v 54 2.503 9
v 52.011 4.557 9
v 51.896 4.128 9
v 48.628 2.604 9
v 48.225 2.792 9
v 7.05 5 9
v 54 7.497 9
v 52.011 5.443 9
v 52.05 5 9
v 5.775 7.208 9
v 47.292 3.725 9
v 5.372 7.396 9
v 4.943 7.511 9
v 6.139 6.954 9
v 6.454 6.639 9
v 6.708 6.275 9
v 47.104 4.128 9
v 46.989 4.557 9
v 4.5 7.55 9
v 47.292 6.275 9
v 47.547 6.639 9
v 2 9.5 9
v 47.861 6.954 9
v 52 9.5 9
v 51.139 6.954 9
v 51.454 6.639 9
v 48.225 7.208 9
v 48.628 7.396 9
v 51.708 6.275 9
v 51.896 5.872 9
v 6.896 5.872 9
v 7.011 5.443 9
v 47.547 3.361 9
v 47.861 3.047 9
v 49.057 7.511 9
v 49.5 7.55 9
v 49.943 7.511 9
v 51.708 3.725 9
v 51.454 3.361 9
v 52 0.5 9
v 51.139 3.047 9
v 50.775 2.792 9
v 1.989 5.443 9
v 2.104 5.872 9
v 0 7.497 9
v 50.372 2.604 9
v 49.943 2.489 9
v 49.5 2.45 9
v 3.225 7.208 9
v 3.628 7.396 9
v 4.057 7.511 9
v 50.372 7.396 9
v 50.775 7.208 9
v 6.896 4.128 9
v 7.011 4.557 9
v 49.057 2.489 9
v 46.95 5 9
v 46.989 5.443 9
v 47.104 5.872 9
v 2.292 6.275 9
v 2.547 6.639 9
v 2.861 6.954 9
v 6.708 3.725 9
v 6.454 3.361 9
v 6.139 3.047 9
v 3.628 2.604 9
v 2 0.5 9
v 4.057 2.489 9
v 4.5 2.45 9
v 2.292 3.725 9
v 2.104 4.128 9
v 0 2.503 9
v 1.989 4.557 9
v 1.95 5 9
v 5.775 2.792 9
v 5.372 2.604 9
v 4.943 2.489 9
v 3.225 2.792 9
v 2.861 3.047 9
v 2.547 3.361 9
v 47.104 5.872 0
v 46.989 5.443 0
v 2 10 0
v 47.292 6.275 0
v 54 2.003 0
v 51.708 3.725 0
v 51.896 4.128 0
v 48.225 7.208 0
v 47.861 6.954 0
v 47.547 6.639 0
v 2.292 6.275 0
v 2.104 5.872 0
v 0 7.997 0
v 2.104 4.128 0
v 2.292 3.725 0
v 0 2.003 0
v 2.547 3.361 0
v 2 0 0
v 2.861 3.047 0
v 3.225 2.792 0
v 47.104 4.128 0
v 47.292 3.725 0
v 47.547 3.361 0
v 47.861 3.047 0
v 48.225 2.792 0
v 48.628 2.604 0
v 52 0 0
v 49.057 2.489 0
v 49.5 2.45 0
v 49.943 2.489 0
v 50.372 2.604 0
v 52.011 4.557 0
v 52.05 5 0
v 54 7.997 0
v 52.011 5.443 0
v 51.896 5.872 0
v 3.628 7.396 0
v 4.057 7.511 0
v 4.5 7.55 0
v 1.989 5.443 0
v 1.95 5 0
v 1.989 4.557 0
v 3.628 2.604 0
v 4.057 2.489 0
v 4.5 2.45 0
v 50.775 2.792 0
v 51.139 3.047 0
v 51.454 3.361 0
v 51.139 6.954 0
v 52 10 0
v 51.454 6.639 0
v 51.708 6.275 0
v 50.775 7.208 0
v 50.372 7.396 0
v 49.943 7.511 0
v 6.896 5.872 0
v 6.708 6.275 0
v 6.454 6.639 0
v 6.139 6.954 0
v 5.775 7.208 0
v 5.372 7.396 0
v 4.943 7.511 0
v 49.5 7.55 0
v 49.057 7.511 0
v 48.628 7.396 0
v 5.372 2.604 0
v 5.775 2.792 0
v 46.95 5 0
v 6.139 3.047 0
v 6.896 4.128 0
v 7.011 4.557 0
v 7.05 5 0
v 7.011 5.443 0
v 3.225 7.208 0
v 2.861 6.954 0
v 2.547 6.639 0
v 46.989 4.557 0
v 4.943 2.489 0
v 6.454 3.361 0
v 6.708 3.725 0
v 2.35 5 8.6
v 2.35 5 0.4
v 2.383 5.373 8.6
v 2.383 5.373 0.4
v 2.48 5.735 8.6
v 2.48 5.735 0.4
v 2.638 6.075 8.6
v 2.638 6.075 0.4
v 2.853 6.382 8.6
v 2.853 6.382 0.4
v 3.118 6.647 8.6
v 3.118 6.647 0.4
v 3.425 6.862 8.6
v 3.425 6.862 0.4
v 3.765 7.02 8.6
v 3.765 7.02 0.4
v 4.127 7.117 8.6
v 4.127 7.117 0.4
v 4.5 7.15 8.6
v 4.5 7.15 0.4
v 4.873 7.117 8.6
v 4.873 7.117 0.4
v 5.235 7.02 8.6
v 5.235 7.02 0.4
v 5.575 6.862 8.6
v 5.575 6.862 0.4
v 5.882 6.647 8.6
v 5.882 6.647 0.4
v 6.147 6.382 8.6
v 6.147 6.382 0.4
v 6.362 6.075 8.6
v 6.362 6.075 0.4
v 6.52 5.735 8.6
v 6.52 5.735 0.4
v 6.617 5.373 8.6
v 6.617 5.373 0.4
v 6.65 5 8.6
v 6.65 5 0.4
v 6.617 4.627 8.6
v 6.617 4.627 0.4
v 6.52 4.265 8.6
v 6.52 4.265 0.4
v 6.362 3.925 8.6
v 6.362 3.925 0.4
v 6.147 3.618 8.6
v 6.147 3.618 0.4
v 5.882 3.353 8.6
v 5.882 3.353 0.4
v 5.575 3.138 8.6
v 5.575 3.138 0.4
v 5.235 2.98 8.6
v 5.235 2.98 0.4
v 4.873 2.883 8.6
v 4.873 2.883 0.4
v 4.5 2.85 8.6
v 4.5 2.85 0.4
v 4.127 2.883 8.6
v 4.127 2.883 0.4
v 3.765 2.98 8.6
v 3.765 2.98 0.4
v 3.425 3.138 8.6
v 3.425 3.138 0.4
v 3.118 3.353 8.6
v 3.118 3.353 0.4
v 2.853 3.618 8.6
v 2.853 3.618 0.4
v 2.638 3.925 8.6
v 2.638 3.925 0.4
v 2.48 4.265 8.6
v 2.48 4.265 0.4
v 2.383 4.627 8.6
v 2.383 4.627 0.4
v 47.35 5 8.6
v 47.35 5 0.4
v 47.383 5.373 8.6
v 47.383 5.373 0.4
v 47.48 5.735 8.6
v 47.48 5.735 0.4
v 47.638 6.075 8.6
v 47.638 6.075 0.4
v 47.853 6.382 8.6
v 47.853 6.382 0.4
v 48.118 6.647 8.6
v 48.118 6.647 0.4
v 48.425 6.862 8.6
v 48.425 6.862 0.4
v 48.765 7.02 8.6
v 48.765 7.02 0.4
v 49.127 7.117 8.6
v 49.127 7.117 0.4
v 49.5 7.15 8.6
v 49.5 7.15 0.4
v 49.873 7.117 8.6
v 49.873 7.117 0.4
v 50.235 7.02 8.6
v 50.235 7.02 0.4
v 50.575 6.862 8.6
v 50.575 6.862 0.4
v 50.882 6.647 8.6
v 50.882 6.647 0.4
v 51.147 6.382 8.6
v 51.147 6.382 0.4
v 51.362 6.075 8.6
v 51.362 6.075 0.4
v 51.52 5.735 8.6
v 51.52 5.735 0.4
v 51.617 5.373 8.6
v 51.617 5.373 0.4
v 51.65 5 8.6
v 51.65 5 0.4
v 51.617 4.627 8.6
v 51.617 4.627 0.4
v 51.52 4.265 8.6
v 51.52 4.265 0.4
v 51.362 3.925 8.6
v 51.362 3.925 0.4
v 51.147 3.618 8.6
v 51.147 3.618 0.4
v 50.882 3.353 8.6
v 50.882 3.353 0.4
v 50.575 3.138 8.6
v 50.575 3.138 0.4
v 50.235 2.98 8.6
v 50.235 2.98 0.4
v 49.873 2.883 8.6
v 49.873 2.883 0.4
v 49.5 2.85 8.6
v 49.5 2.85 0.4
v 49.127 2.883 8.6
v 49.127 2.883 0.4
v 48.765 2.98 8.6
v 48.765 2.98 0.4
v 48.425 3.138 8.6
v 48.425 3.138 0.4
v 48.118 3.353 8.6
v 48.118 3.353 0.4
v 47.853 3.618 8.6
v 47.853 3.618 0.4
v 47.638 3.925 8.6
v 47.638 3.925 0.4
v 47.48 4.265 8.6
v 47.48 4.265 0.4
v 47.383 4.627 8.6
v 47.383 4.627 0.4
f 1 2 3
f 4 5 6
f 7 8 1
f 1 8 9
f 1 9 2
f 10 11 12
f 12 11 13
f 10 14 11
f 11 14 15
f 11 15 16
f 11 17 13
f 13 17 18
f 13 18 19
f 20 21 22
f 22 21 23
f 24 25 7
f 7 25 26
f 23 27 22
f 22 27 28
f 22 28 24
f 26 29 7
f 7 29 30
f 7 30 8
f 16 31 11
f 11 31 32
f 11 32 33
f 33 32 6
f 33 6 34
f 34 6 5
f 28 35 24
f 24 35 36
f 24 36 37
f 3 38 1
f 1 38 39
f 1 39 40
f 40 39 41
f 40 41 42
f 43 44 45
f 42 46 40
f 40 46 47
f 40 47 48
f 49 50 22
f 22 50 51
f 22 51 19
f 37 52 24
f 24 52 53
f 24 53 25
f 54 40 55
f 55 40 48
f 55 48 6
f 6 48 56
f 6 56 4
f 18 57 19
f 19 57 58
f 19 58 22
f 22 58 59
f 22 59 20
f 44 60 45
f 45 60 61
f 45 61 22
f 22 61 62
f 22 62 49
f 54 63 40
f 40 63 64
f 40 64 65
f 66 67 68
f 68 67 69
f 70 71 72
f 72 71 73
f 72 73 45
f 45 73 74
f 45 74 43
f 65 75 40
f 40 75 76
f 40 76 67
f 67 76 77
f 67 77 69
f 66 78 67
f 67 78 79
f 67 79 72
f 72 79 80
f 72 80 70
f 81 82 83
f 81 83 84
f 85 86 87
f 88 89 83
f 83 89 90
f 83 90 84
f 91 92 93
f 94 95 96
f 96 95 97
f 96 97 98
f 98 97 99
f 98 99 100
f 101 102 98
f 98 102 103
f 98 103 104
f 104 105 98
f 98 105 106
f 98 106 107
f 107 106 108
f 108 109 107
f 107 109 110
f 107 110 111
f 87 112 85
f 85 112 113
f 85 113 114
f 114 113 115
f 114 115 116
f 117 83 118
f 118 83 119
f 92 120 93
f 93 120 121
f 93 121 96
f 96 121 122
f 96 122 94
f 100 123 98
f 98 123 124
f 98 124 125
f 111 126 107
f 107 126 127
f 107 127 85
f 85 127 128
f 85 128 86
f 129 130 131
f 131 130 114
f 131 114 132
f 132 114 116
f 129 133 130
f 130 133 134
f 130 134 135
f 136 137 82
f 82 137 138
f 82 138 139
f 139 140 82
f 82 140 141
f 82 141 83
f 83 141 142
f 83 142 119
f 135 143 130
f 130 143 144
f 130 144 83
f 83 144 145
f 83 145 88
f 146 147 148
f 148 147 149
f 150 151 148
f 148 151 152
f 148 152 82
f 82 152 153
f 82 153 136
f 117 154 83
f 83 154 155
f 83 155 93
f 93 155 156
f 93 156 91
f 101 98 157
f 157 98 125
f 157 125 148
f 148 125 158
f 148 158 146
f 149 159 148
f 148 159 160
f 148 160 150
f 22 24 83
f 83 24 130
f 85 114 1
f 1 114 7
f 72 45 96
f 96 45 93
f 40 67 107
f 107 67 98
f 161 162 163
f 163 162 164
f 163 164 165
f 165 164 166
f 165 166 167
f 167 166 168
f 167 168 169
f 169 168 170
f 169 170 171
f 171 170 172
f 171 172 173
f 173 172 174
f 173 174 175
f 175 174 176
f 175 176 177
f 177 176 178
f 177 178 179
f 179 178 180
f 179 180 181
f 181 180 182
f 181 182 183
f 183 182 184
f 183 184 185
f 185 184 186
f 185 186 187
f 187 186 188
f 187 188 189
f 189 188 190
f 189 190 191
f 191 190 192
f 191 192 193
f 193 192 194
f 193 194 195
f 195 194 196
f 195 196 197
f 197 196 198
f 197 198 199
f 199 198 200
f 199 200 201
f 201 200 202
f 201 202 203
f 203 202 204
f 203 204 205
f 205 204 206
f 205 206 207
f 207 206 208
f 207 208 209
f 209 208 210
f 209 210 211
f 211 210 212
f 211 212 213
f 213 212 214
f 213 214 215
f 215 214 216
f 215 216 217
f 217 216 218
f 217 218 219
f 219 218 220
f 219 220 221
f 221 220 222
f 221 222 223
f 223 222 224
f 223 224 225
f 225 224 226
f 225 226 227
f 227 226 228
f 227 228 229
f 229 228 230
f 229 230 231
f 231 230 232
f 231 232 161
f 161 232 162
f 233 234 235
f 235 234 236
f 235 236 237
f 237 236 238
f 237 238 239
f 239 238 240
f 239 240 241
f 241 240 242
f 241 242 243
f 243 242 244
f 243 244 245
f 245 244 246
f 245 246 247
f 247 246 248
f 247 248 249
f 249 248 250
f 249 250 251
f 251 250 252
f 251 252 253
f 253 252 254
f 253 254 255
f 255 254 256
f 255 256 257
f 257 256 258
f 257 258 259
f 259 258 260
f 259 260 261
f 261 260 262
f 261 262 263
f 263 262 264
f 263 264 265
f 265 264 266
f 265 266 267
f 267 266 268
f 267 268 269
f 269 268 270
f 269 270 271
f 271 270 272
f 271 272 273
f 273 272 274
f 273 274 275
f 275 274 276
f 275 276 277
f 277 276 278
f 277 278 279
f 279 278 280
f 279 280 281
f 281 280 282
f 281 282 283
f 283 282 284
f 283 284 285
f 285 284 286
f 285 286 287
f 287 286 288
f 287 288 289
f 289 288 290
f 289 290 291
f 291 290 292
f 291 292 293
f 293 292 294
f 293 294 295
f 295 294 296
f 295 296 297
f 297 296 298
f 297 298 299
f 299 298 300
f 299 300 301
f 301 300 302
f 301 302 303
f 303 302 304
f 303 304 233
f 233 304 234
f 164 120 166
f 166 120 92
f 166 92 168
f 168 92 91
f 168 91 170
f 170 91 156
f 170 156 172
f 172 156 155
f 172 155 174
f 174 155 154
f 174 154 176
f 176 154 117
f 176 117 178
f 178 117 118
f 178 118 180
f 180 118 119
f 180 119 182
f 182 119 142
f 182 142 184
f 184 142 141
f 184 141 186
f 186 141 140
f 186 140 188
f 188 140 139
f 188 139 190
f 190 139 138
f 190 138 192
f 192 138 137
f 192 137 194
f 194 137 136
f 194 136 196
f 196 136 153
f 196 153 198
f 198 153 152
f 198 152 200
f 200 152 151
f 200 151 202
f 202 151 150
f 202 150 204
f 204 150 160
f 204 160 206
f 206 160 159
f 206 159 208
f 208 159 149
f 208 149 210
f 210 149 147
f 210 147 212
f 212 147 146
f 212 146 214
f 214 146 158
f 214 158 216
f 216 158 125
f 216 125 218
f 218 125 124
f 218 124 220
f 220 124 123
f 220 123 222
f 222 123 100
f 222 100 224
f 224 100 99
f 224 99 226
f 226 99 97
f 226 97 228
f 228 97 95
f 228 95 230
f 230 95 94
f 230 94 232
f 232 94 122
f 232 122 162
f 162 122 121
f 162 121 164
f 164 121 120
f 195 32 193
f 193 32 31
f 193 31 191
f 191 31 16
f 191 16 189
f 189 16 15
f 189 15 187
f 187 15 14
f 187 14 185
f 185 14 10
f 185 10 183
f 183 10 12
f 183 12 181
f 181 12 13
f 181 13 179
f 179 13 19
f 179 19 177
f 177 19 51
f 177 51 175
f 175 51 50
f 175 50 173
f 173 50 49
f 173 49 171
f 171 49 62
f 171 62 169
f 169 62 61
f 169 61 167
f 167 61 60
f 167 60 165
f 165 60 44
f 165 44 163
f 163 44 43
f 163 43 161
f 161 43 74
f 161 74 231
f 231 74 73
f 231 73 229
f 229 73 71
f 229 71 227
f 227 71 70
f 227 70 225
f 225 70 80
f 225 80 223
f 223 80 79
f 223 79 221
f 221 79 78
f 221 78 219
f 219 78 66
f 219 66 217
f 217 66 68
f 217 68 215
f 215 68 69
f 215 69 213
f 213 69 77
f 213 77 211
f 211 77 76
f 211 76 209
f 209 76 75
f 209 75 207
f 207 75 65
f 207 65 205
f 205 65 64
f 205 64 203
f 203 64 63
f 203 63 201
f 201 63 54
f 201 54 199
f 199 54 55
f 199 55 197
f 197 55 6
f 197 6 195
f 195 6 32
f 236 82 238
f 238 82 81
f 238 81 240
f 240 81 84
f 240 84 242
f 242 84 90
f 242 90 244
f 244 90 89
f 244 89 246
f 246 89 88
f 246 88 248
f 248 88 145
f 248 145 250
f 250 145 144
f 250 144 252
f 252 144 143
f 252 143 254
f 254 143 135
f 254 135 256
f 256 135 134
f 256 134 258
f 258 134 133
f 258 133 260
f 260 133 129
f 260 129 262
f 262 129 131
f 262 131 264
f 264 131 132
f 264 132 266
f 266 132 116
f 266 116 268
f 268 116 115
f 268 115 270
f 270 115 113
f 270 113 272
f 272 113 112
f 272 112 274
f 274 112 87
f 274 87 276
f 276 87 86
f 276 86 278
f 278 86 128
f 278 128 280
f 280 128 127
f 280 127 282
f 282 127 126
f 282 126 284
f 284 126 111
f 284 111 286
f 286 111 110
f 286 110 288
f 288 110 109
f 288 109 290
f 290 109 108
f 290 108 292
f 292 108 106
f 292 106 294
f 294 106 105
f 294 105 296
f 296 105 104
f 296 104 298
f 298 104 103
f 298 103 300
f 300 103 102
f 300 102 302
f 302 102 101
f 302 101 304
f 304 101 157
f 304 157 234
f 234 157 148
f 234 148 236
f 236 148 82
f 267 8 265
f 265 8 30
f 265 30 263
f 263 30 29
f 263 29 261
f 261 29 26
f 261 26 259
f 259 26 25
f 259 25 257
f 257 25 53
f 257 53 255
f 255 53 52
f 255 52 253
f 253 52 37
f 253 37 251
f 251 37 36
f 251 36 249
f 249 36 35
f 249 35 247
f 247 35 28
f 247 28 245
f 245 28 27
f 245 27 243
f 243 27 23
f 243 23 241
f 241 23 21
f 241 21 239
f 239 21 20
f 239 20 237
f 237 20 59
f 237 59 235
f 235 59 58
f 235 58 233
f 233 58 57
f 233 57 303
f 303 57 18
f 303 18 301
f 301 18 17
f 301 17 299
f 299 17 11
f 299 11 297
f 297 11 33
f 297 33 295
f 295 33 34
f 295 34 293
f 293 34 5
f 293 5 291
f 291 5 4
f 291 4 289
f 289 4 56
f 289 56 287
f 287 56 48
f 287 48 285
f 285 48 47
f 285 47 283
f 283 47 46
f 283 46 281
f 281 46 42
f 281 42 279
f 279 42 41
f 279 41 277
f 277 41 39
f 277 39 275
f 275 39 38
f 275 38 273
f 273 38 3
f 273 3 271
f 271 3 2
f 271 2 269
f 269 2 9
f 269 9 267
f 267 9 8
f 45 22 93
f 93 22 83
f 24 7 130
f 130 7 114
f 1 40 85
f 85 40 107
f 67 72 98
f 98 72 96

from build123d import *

# Parameters (mm, degrees)
SKETCH3_R          = 2.15
CUT_EXTRUDE1_DEPTH = 10
CHAMFER1_SIZE      = 0.4
CHAMFER2_SIZE      = 2
CHAMFER3_SIZE      = 2


with BuildPart() as part:
    # Sketch1 → Loft1 section 0
    with BuildSketch(Plane.XY):
        with BuildLine():
            Line((0, 0), (54, 0))
            Line((54, 0), (54, 10))
            Line((54, 10), (0, 10))
            Line((0, 10), (0, 0))
        make_face()
    # Sketch2 → Loft1 section 1
    with BuildSketch(Plane.XY.offset(9)):
        with BuildLine():
            Line((0, 9.5), (54, 9.5))
            Line((54, 9.5), (54, 0.5))
            Line((54, 0.5), (0, 0.5))
            Line((0, 0.5), (0, 9.5))
        make_face()
    loft()

    # Sketch3 → Cut-Extrude1 (cut)
    with BuildSketch(Plane(origin=(0, 0, 0), x_dir=(-1, 0, 0), z_dir=(0, 0, -1))):
        with Locations((-49.5, 5)):
            Circle(SKETCH3_R)
        with Locations((-4.5, 5)):
            Circle(SKETCH3_R)
    extrude(amount=-CUT_EXTRUDE1_DEPTH, mode=Mode.SUBTRACT)

    # Chamfer1
    chamfer1_edges = [part.edges().sort_by_distance(p)[0] for p in [
        (51.65, 5, 9),
        (51.65, 5, 0),
        (6.65, 5, 9),
        (6.65, 5, 0),
    ]]
    chamfer(chamfer1_edges, length=CHAMFER1_SIZE)

    # Chamfer2
    chamfer2_edges = [part.edges().sort_by_distance(p)[0] for p in [
        (0, 9.75, 4.5),
        (54, 9.75, 4.5),
    ]]
    chamfer(chamfer2_edges, length=CHAMFER2_SIZE)

    # Chamfer3
    chamfer3_edges = [part.edges().sort_by_distance(p)[0] for p in [
        (54, 0.25, 4.5),
        (0, 0.25, 4.5),
    ]]
    chamfer(chamfer3_edges, length=CHAMFER3_SIZE)


solid = part.part
